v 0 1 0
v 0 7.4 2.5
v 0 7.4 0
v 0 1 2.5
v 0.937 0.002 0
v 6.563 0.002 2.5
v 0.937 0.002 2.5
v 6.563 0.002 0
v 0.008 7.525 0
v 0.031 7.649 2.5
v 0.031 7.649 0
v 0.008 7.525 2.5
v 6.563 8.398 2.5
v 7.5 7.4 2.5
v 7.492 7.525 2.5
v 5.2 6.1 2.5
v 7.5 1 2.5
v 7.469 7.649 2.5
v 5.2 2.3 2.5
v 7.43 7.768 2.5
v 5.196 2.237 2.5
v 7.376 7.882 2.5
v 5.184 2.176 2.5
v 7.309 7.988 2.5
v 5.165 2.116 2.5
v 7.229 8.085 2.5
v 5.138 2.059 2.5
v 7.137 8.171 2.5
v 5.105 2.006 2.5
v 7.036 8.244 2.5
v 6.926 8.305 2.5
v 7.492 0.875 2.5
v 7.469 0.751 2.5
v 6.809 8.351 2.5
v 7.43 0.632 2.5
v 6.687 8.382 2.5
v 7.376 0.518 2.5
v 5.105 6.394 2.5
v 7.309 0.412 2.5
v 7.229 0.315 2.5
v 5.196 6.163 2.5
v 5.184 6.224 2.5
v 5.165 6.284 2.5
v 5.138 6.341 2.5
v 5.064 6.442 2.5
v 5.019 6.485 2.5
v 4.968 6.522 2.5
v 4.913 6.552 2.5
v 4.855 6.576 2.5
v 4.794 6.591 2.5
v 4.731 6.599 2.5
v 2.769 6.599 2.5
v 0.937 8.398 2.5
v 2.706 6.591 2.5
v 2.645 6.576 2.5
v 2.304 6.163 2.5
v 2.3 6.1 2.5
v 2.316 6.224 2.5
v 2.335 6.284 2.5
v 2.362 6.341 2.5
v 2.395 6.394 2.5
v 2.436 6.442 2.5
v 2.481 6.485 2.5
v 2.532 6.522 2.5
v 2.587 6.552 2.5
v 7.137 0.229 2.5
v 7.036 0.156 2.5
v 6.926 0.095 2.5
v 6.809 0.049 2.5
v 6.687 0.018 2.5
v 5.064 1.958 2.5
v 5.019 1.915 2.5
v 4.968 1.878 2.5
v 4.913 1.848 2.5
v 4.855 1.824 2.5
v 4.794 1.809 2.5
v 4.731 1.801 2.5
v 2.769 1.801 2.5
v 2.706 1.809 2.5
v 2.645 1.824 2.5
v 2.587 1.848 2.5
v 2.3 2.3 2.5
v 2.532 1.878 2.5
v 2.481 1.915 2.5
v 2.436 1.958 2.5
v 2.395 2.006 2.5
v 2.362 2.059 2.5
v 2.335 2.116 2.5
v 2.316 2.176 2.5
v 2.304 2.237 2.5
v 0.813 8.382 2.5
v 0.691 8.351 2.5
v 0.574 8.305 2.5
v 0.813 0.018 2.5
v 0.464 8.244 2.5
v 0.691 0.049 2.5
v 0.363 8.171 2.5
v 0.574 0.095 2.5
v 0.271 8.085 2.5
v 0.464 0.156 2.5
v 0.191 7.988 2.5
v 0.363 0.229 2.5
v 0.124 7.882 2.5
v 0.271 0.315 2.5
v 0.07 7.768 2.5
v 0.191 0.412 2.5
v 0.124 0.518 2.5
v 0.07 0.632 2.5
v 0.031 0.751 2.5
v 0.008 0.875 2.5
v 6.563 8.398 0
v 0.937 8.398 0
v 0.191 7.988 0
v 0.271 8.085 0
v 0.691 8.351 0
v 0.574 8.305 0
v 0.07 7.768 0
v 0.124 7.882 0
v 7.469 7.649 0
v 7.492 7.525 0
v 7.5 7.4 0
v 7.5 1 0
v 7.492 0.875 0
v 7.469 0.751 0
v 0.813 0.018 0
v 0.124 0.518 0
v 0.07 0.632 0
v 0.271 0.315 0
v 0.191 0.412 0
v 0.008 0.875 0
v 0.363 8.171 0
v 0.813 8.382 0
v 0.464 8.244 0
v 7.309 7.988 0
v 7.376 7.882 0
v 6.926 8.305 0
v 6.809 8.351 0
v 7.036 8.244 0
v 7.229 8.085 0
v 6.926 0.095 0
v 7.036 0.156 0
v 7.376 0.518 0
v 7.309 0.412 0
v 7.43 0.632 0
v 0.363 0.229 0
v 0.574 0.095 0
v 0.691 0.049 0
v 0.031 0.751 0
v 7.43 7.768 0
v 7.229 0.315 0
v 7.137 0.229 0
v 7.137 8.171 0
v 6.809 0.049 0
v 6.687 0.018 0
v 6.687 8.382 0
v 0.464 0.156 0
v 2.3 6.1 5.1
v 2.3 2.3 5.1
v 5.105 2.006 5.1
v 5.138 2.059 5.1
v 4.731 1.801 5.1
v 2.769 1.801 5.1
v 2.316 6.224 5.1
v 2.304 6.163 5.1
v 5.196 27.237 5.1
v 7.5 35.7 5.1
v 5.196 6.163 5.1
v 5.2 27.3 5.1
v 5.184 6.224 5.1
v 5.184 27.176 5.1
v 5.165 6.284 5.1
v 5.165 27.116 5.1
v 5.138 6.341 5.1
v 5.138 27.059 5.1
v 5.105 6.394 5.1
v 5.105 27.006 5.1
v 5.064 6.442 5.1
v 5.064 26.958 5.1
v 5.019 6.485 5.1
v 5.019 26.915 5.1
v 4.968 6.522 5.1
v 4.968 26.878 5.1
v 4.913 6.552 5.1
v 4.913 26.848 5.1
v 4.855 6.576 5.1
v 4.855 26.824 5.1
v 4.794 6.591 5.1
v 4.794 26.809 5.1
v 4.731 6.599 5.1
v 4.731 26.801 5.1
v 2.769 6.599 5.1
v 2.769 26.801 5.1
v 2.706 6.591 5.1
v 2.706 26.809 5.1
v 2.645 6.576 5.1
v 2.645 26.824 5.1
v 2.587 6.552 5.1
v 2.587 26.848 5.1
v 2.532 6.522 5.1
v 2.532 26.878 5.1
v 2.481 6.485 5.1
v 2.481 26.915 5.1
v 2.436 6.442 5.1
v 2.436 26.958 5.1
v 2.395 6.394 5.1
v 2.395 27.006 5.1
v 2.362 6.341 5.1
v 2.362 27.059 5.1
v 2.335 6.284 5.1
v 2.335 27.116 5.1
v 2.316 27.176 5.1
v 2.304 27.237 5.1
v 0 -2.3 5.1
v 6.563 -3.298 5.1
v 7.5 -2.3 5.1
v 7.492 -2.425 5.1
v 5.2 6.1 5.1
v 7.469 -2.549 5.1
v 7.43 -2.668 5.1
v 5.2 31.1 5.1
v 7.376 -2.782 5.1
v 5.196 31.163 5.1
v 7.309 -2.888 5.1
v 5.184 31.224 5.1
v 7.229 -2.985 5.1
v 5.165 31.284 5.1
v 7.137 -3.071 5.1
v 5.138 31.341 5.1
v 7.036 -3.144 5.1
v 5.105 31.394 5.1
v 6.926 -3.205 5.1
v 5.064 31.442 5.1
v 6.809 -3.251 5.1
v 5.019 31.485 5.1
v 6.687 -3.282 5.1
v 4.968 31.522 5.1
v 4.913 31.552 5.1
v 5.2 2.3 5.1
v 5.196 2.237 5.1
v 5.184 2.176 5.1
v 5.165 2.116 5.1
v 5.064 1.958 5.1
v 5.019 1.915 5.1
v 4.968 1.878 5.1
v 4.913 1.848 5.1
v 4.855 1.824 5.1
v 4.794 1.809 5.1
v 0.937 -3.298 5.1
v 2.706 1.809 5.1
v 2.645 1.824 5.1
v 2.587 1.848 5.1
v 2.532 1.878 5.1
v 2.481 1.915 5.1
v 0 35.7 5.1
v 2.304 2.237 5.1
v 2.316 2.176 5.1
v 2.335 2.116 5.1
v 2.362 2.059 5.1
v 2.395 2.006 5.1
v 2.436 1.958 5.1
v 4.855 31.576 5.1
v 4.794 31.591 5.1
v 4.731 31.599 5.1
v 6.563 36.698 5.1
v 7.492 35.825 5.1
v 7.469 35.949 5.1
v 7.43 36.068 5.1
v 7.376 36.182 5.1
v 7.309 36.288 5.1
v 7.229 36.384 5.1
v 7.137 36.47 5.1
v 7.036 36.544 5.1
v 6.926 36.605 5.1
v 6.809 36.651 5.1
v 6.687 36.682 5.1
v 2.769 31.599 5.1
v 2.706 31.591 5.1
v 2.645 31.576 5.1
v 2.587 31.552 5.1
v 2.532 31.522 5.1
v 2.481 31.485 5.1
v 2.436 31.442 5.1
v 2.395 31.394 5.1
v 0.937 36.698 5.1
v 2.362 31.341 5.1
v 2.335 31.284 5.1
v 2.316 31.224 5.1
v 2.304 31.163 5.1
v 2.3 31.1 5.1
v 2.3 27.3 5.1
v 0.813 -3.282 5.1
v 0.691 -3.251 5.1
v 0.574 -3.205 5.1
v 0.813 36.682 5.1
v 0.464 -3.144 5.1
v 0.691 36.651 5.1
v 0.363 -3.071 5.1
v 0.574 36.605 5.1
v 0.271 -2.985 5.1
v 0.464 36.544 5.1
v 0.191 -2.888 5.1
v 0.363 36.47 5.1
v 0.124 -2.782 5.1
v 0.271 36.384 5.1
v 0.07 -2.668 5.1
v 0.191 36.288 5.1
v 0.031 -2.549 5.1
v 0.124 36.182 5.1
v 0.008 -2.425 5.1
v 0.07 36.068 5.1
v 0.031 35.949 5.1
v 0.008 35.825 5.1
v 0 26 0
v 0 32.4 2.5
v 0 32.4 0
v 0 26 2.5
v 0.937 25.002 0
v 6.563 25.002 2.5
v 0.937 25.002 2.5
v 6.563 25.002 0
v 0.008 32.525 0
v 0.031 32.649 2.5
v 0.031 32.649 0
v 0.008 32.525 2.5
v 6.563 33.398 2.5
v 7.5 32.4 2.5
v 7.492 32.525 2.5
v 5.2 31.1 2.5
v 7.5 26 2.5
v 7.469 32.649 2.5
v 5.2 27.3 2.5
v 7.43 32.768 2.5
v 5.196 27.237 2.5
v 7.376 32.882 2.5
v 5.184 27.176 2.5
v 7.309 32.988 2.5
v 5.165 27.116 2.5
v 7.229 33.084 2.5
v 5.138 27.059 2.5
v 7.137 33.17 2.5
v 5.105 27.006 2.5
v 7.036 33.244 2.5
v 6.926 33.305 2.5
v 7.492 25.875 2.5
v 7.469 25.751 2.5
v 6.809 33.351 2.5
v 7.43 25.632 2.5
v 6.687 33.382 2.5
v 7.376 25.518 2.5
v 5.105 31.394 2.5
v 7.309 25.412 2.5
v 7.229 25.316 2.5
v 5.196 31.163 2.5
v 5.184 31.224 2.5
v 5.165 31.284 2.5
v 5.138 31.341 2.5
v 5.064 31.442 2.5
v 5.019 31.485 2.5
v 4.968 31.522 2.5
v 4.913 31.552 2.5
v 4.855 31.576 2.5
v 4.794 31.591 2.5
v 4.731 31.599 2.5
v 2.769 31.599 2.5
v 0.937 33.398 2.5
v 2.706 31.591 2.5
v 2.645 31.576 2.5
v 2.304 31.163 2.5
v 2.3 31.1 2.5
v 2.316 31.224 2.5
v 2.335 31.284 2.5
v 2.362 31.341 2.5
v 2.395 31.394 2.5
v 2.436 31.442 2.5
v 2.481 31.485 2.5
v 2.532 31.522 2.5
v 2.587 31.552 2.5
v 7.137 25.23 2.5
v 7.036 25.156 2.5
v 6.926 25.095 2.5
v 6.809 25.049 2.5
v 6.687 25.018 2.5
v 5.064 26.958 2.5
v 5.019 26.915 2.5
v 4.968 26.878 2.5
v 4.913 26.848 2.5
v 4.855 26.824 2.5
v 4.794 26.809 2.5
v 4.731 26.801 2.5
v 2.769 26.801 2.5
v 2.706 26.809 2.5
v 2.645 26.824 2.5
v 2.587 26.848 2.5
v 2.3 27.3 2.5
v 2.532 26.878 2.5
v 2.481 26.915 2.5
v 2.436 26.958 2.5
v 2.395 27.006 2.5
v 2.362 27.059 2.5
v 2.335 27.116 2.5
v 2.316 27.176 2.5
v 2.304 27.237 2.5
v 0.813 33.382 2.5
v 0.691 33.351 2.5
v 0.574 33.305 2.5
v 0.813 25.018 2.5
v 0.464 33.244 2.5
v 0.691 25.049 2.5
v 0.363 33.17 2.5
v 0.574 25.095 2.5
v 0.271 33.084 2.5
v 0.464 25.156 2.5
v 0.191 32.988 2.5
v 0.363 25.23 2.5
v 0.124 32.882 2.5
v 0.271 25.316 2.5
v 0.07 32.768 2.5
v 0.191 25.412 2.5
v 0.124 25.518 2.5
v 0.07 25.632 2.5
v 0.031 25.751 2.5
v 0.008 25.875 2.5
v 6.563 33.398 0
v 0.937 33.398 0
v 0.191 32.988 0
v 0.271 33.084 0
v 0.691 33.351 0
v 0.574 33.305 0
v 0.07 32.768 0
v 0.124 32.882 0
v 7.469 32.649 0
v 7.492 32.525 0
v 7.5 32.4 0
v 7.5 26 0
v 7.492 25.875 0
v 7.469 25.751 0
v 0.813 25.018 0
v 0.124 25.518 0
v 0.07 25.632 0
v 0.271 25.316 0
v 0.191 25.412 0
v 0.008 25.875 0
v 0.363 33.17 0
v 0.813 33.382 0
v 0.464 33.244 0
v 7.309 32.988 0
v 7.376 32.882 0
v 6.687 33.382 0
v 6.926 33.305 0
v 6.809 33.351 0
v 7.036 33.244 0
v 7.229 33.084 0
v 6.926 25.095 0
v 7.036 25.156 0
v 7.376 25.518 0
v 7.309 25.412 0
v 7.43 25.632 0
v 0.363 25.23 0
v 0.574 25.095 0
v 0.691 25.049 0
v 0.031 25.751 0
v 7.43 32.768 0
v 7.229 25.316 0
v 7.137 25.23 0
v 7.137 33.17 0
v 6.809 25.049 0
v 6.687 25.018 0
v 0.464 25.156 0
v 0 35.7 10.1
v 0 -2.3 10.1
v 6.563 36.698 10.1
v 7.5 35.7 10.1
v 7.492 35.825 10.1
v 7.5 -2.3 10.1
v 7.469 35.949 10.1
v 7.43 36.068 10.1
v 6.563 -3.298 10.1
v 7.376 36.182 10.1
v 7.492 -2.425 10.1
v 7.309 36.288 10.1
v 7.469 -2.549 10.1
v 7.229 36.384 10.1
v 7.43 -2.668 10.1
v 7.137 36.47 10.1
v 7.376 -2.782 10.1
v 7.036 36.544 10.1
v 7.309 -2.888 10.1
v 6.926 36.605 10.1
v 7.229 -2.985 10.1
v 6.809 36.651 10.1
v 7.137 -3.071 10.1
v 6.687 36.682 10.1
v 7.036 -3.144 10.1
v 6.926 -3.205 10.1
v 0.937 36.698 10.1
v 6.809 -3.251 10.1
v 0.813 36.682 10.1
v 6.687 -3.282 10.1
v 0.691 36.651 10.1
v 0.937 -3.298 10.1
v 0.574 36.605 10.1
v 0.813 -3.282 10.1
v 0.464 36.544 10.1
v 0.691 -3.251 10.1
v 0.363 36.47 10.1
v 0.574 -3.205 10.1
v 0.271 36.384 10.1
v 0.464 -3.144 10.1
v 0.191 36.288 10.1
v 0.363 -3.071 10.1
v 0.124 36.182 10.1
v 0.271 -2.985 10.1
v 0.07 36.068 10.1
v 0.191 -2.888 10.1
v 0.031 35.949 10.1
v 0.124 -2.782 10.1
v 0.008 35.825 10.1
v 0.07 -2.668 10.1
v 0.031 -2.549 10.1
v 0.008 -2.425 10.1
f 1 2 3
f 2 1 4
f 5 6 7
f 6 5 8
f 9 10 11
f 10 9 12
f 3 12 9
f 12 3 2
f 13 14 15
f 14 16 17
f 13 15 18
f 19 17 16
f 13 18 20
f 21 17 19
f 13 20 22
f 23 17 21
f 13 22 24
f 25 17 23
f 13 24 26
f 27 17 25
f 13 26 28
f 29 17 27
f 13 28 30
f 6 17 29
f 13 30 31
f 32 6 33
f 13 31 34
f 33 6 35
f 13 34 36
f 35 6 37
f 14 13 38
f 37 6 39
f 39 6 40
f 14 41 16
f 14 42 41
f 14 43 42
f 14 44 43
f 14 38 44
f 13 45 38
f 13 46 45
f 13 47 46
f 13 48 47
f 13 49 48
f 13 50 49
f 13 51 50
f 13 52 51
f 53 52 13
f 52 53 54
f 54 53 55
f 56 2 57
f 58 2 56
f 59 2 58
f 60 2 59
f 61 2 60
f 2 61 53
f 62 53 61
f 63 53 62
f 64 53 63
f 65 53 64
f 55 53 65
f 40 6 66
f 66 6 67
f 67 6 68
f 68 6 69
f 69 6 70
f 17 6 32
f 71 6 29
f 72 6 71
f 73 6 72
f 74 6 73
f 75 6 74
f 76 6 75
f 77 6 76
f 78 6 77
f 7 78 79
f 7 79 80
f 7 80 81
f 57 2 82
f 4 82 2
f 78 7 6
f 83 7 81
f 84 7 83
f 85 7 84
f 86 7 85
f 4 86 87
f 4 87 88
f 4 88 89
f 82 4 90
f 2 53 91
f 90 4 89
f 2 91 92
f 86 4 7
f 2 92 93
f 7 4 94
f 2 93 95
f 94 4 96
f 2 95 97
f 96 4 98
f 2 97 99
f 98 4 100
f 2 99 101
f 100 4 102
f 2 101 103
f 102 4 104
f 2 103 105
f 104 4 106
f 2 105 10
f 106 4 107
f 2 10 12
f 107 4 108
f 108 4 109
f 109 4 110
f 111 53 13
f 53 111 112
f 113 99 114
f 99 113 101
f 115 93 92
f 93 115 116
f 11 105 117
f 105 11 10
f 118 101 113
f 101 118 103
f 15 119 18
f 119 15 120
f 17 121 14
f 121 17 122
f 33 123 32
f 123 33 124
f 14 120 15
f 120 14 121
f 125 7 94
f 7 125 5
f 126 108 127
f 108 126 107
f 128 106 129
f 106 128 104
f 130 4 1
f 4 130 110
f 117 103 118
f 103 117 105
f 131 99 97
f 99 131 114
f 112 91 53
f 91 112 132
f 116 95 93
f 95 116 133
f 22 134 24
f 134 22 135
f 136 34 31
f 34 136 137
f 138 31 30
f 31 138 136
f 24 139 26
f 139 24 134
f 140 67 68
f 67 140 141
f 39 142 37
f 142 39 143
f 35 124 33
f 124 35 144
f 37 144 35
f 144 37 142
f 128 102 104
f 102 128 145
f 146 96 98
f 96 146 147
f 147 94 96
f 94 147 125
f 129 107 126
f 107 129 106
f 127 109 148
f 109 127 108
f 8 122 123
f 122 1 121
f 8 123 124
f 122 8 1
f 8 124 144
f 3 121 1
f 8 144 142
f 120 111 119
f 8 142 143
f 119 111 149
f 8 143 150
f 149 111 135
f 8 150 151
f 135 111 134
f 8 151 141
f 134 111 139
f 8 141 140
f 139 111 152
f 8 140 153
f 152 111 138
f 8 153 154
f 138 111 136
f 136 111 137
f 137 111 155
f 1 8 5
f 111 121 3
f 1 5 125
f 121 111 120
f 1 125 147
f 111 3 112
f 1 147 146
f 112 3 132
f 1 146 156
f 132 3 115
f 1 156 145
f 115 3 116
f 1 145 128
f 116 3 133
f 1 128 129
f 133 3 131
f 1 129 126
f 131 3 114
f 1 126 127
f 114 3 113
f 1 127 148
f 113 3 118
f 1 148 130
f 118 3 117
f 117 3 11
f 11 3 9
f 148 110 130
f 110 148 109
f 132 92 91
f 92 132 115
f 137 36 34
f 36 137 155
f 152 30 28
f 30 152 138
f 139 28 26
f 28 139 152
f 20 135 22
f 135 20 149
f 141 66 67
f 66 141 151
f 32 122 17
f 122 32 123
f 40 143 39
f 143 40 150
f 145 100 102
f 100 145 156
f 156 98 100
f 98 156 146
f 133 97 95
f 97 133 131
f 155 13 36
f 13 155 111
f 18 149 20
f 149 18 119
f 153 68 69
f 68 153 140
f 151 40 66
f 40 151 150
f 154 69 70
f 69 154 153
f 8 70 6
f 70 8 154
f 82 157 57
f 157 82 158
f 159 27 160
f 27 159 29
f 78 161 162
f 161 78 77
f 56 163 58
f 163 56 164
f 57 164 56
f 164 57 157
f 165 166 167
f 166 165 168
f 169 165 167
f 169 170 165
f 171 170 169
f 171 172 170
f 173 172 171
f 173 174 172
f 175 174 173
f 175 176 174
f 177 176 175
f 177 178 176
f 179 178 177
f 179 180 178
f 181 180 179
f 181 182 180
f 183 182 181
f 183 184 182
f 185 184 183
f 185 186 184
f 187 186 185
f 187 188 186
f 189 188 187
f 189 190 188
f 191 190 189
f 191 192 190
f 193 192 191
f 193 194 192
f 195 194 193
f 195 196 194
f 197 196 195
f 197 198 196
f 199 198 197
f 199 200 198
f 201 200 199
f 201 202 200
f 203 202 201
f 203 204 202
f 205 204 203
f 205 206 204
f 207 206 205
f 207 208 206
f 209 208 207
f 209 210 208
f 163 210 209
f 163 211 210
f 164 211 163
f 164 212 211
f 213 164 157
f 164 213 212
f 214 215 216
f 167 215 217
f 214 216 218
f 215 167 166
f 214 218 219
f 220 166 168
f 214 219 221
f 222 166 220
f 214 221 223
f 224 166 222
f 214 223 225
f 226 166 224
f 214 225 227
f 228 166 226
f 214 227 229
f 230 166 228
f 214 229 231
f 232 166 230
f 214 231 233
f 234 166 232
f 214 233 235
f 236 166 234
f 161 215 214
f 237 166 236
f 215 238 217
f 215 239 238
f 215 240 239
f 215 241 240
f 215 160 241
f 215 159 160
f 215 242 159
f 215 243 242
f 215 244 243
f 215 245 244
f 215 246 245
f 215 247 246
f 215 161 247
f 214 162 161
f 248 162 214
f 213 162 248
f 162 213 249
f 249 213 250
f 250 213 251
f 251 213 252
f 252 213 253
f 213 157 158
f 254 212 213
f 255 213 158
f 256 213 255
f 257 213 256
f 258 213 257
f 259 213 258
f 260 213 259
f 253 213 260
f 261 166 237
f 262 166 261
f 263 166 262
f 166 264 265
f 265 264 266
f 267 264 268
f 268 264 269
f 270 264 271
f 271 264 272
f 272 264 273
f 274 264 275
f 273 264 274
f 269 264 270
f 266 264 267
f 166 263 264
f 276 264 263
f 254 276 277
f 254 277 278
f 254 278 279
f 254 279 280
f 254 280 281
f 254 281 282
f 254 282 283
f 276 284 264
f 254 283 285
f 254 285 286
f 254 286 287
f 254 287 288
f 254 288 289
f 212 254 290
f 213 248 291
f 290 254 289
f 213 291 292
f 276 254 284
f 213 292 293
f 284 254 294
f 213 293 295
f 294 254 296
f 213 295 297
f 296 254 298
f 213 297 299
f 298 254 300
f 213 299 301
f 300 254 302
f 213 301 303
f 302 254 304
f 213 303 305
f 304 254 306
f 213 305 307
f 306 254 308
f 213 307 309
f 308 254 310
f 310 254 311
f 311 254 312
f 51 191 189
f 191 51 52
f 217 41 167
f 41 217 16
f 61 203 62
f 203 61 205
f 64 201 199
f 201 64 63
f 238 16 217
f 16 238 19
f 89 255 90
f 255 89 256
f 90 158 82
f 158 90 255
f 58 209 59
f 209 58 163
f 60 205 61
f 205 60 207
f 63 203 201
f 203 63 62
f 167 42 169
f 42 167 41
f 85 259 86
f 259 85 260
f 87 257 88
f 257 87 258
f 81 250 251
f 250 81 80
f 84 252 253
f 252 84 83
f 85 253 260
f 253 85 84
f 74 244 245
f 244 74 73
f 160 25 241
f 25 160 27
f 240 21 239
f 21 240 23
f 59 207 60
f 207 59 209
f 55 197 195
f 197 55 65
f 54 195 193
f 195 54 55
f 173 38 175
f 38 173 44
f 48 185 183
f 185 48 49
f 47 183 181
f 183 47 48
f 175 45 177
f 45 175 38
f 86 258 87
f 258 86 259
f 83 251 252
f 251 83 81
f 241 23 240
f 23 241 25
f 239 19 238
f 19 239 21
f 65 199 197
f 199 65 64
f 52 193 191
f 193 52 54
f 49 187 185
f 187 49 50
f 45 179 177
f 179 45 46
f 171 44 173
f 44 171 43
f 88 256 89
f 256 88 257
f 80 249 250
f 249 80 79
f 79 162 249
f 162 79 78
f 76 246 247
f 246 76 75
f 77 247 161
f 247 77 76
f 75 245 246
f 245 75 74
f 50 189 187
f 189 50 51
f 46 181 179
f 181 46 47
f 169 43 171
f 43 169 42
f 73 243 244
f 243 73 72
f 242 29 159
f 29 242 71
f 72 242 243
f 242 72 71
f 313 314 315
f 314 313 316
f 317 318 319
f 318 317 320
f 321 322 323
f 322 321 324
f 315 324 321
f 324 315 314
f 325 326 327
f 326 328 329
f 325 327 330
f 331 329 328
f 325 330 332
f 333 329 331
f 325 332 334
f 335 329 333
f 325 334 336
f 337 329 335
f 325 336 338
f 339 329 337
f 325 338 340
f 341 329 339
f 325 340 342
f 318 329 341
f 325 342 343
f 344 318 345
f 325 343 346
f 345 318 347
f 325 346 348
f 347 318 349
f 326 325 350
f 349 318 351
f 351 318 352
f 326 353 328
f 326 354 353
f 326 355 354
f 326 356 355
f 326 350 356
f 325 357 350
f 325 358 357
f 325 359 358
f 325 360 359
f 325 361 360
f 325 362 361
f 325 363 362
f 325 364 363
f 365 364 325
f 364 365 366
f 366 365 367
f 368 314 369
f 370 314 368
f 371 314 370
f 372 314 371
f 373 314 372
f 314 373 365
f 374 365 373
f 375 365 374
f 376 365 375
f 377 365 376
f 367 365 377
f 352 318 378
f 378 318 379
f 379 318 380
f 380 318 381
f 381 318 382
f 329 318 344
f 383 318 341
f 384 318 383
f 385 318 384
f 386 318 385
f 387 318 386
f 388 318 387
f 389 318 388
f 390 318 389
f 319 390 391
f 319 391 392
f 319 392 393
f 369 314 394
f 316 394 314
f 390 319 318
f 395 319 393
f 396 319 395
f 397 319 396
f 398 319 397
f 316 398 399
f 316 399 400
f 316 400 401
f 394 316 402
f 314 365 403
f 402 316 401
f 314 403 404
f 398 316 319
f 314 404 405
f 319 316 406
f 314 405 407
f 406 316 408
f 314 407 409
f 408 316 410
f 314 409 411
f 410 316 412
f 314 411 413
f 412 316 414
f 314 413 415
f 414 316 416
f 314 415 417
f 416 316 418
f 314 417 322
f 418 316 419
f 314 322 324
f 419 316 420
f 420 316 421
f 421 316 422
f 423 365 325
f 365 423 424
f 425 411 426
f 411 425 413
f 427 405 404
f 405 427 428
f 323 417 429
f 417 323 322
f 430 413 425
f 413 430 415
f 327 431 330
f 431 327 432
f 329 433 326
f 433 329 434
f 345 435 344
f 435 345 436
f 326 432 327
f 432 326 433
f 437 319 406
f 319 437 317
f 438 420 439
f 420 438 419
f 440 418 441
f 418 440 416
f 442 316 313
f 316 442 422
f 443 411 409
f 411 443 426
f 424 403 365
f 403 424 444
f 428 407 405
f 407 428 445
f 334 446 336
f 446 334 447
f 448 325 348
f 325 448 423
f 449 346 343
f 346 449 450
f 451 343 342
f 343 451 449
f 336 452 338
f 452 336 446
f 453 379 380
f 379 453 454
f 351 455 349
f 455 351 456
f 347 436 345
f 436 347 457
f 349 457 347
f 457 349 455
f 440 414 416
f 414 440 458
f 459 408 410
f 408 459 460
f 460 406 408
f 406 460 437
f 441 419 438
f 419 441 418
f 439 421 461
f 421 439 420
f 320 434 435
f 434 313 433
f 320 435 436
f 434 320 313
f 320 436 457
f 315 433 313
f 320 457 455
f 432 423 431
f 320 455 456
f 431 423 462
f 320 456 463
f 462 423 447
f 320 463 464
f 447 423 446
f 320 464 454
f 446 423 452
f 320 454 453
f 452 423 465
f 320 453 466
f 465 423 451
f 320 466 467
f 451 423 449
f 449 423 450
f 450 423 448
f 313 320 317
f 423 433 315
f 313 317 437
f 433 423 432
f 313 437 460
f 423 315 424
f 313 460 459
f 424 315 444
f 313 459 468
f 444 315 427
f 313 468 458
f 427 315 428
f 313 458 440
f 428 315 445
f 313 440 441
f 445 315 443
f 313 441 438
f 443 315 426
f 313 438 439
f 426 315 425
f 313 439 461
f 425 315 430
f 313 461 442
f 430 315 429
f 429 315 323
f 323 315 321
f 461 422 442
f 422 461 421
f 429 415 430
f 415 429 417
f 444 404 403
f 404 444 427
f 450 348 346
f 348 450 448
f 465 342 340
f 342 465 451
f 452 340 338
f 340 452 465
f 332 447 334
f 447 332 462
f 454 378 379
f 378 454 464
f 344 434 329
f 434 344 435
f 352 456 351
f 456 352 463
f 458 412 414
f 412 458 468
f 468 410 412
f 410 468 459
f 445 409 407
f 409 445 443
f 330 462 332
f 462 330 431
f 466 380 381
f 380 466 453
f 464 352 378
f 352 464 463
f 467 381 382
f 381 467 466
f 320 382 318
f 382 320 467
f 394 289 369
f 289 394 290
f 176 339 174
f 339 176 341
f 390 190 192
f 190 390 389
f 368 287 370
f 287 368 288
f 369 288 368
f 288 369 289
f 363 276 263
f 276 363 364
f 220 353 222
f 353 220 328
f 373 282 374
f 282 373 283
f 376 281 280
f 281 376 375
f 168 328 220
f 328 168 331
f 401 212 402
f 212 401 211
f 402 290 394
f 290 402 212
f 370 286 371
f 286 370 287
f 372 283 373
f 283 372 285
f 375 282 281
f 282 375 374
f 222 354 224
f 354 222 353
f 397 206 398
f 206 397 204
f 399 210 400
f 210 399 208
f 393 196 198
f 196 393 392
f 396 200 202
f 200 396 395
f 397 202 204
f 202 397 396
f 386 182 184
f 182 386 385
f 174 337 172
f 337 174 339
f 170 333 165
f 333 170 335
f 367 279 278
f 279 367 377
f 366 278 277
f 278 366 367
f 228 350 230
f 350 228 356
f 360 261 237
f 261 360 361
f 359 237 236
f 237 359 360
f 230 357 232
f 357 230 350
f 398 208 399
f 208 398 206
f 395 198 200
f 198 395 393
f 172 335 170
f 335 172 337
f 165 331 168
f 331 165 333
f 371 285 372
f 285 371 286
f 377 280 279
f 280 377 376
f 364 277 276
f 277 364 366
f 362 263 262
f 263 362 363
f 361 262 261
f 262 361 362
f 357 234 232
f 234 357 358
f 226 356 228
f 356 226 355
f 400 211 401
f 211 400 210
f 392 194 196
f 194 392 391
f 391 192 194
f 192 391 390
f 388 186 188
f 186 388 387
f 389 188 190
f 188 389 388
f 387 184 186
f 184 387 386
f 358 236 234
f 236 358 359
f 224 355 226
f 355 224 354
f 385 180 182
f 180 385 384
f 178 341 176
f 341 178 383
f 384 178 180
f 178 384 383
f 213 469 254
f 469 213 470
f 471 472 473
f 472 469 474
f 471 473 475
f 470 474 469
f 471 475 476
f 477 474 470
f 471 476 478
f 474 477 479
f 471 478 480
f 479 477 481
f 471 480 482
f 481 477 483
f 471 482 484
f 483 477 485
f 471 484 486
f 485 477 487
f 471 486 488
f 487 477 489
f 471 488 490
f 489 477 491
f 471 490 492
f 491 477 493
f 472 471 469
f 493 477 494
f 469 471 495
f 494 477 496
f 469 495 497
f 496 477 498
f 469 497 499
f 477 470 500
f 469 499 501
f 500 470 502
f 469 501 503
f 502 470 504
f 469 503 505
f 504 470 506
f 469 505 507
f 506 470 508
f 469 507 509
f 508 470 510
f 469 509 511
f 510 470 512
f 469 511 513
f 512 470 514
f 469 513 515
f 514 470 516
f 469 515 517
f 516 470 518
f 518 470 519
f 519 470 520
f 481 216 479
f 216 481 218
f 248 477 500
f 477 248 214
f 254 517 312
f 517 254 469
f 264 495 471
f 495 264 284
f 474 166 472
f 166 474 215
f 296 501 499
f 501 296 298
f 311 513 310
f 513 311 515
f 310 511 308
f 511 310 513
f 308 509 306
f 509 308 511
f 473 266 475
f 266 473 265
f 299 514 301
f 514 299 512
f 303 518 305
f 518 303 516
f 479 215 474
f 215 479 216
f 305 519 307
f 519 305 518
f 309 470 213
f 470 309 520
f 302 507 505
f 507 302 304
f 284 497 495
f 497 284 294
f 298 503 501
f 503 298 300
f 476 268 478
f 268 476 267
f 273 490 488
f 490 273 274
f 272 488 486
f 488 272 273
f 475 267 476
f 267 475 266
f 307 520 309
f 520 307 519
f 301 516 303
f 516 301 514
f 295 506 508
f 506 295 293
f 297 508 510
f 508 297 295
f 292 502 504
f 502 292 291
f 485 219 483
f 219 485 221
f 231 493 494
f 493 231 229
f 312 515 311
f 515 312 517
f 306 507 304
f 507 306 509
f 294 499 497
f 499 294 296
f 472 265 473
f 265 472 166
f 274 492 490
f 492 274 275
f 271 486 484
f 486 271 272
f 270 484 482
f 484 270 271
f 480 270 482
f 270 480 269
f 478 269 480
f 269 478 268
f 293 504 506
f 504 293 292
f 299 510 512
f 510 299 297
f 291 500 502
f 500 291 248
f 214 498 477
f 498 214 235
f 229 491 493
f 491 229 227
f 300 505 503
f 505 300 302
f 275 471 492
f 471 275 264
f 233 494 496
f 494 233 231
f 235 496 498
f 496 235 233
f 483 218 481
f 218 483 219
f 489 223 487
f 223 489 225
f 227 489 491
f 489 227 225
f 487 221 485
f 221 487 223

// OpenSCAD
// file: ../lib/helpers.objects.scad
/* Helpers for providing object-line functionality.
*/

use <helpers.lists.scad>;

function __getset(obj, index, value) =
  is_undef(value)
    ? obj[index]
    : replace(obj, index, value);
// file: ../lib/helpers.lists.scad
// Creates a list of integers.

function range(r) = [for (x = r) x];

// Reverses a list.
    
function reverse(list) = [for (i = [len(list)-1:-1:0]) list[i]];
  
// Concatenates two lists. If either of them is `undef`, it is ignored.

function concat_undef(list1, list2) =
    concat(is_undef(list1) ? [] : list1, is_undef(list2) ? [] : list2);

// Quicksort
// http://forum.openscad.org/OpenJSCAD-our-javascript-friends-td7835.html

function quicksort(list) = !(len(list)>0) ? [] : let( 
    pivot   = list[floor(len(list)/2)], 
    lesser  = [ for (y = list) if (y  < pivot) y ], 
    equal   = [ for (y = list) if (y == pivot) y ], 
    greater = [ for (y = list) if (y  > pivot) y ] 
) concat( 
    quicksort(lesser), equal, quicksort(greater) 
); 

// Returns sum of squares of list elements

function sum_squares(list) = list*list;
// file: ../lib/geometry.scad
/* Functions that implement calculations on points (2D/3D) and lists of points.
*/

use <helpers.lists.scad>
use <helpers.math.scad>
use <helpers.objects.scad>

// Calculates distance between two points.

function distance(pt1, pt2) =
  length(pt2 - pt1);
  
// Linear interpolation between two points.
// t = number => result = point between pt1 and pt2
// t = range => result = list of points between pt1 and pt2

function interpolate(t, pt1, pt2) = 
  is_num(t) 
    ? (1 - t) * pt1 + t * pt2
    : [for (x=t) interpolate(x, pt1, pt2)];
  
// Angle (0-180) between two (2D or 3D) vectors.

function angle(u, v) =
  let (u3 = make_3D(u),
       v3 = make_3D(v))
  angle3(u3, v3); 
  
// Angle (0-360) of a 2D vector.

function angle2(v1) = 
  let(side = dist_from_line(line_coef([0, 0], [1, 0]), v1),
      a = angle3(concat(v1, [0])))
  side <= 0 ? a : 360 - a; 

// Sets Z coordinate to 0 if it is not defined.

function make_3D(points) = 
  ! is_vector(points)
    ? [for (pt = points) make_3D(pt)]
    : is_undef(points.z) ? concat(points, 0) : points;
  
// echo(make_3D([1,1]));
// echo(make_3D([[1,1], [2,2,2]]));
    
// Removes Z coordinate.

function make_2D(points) = 
  ! is_vector(points)
    ? [for (pt = points) make_2D(pt)]
    : slice(points, [0:1]);
  
// Point on the unit circle on XY plane corresponding to `angle` (in degrees).
  
function point_on_unit_circle(angle) = [cos(angle), sin(angle)];

// Calculates center point for circle with radius `r` running through points `pt1` and `pt2`.
// The `side` parameter (1 or -1) determines on which side of the (pt1, pt2) line the center should lie.

function circle_center(pt1, pt2, r, side = 1) =
  let (mp = interpolate(0.5, pt1, pt2),
       mv = side == 1 ? turn_left(pt2 - mp) : turn_right(pt2 - mp),
       cp = mp + [mv.x, mv.y],
       td = sqrt(pow(r, 2) - pow(distance(pt2, pt1)/2, 2)))
  interpolate(td/distance(cp, mp), mp, cp);

// Finds closest point on a segment.

function find_closest_point(from, to, pt) = 
  let(v = make_3D(to) - make_3D(from),
      u = make_3D(from) - make_3D(pt),
      vu = v*u,
      vv = v*v,
      t = -vu/vv)
  t >= 0 && t <= 1 
    ? interpolate(t, from, to)
    : let (dF = distance(pt, from),
           dT = distance(pt, to))
      dF < dT ? from : to;

// Bounding box.

function bb_create(p1, p2, p3, p4) = 
  // parameters: left, top, right, bottom
  //         or: [left bottom x, left bottom y], [right top x, right top y], undef, undef
  //         or: bb object, undef, undef, undef
  is_undef(p2)
    ? p1
    : is_undef(p3) && is_undef(p4)
        ? [p1.x, p2.y, p2.x, p1.y]
        : [p1, p2, p3, p4];

function bb_left(bb, __left) = __getset(bb, 0, __left);
function bb_top(bb, __top) = __getset(bb, 1, __top);
function bb_right(bb, __right) = __getset(bb, 2, __right);
function bb_bottom(bb, __bottom) = __getset(bb, 3, __bottom);

function bb_width(bb) = bb_right(bb) - bb_left(bb);

function bb_height(bb) = bb_top(bb) - bb_bottom(bb);

function bb_move_to(bb, left, top, right, bottom) =
  let(dx = is_undef(left) 
             ? is_undef(right)
                 ? undef
                 : right - bb_right(bb)
             : left - bb_left(bb),
      dy = is_undef(bottom)
             ? is_undef(top)
                 ? undef
                 : top - bb_top(bb)
             : bottom - bb_bottom(bb))
  bb_create(is_undef(dx) ? bb_left(bb) : bb_left(bb) + dx, 
            is_undef(dy) ? bb_top(bb) : bb_top(bb) + dy, 
            is_undef(dx) ? bb_right(bb) : bb_right(bb) + dx,
            is_undef(dy) ? bb_bottom(bb) : bb_bottom(bb) + dy);

function dot2(v1, v2) = 
  let (d = sqrt((pow(v1.x, 2) + pow(v1.y, 2))*(pow(v2.x, 2) + pow(v2.y, 22))))
  d == 0 
    ? 0
    : acos((v1.x * v2.x + v1.y * v2.y)/d);

function cross2(v1, v2) = 
  v1.x * v2.y - v2.x * v1.y;

// Returns a, b, c in ax + by + c = 0 for line going through (p1, p2). Assumes 2D points.
// Graphics Gems III/IV.5

function line_coef(p1, p2) = [
  p2.y - p1.y,
  p1.x - p2.x,
  p2.x * p1.y - p1.x * p2.y
];

// Returns signed distance from line l = ax + by + c = 0 to point p. Assumes 2D geometry.
// Graphics Gems III/IV.5

function dist_from_line(l, p) =
  let(d = hypoth(l[0], l[1]))
  d == 0
    ? 0
    : (l[0] * p.x + l[1] * p.y + l[2])/d;
    
// Given line l = ax + by + c = 0 and point p1, compute p2 so (p1, p2) is ⊥ to l.
// Graphics Gems III/IV.5

function point_perp(l, p1) = 
  let(d = pow(l[0], 2) + pow(l[1], 2),
      cp = l[0] * p1.y - l[1] * p1.x)
  d == 0
    ? [0, 0]
    : [(-l[0] * l[2] - l[1] * cp)/d,
       (l[0] * cp - l[1] * l[2])/d];

// Joins lines (p1, p2) and (p3, p4) with arc fillet of radius r.
// Returns [p2n, p3n, pc, sa, a] where
//  - p2n = new point p2
//  - p3n = new point p3
//  - pc = center of the arc
//  - sa = starting angle of the arc
//  - a = angle of the arc
// Graphics Gems III/IV.5

function fillet_lines (p1, p2, p3, p4, r) = 
  let(l1 = line_coef(p1, p2),
      l2 = line_coef(p3, p4))
  (l1[0] * l2[1]) == (l2[0] * l1[1])
    ? // Parallel lines
      [p2, p3, [undef, undef], undef, undef]
    : let (d1 = dist_from_line(l1, interpolate(0.5, p3, p4)), // Find d1 = distance (p1, p2) to midpoint (p3, p4).
           d2 = dist_from_line(l2, interpolate(0.5, p1, p2))) // Find d2 = instance (p3, p4) to midpoint (p1, p2).
      ((d1 == 0) || (d2 == 0))
        ? // Abnormal case
          [p2, p3, [undef, undef], undef, undef]
        : let(rr1 = d1 <= 0 ? -r : r, // Construct line ∏ to l at d.
              c1p = l1[2] - rr1 * hypoth(l1[0], l1[1]),  
              rr2 = d2 <= 0 ? -r : r,
              c2p = l2[2] - rr2 * hypoth(l2[0], l2[1]),
              d = l1[0] * l2[1] - l2[0] * l1[1], // Intersect constructed lines to find center of circular arc.
              pc = [(c2p * l1[1] - c1p * l2[1])/d,
                    (c1p * l2[0] - c2p * l1[0])/d],
              pta = point_perp(l1, pc), // Clip l1 at (xa, ya) if needed.
              ptb = point_perp(l2, pc), // Clip l2 at (xb, yb) if needed.
              v1 = pta - pc, // Find angle wrt. x-axis from arc center, (xc, yc).
              v2 = ptb - pc,
              pa = atan2(v1.y, v1.x),
              aa = cross2(v1, v2) >= 0 // Find angle arc subtends.
                     ? dot2(v1, v2)
                     : - dot2(v1, v2))
          [pta, ptb, pc, pa, aa];

// Calculates control points for bezier surface defined by two lines, l1 and l2.
// l1 = [pt1_start, pt1_end], l2 = [pt2_start, pt2_end]

function bezier_patch_controls(l1, l2) =
  let (x0 = interpolate([0:1/3:1], l1[0], l1[1]),
       x3 = interpolate([0:1/3:1], l2[0], l2[1]))
  [ for (i=[0:3]) interpolate([0:1/3:1], x0[i], x3[i]) ];
// file: ../lib/helpers.math.scad
// Constants

e = 2.71828;
tau = (1 + sqrt(5)) / 2;
inf = 0.01;

// is_defined

function is_defined(value) = !is_undef(value);

// Logistic function and its derivative.

function logistic_function(x) = 
  let (ex = exp(x))
  ex / (ex + 1);

function logistic_function_dx(x) = 
  let (ex = exp(x))
  ex / ((ex + 1)*(ex + 1));
  
// Calculates length of a vector.

function length(v) = norm(v);

// Normalizes a vector.

function normalize(v) = v / length(v);

// Calculates hypothenuse of right triangle from its sides.

function hypoth(a, b) = sqrt(pow(a, 2) + pow(b, 2));

// Angle between two vectors.

function angle3(u, v = [1,0,0]) = 
  atan2(norm(cross(u, v)), u * v);

// Given a 2D directional vector, turns 90 deg CW and returns new vector.

function turn_right(xy) = [xy.y, -xy.x];

// Given a 2D directional vector, turns 90 deg CCW and returns new vector.

function turn_left(xy) = [-xy.y, xy.x];

// Returns original value (if not undef) or provided default (if the value is undef).

function initialize(value, default) =
  is_undef(value) ? default : value;
// main file
use <../lib/solids.scad>

rect_big = [7.5, 8.4, 2.5];
rect_small = [2.9, 4.8, 2.6];
connect = [7.5, 40, 5];
dist_rect = 25;

$fn = 50;

module lock () {
  color("red")
  rcube(rect_big, 1);

  color("green")
  translate([(rect_big.x - rect_small.x)/2, (rect_big.y - rect_small.y)/2, rect_big.z])
  rcube(rect_small, 0.5);
}

lock();

translate([0, dist_rect, 0])
lock();

translate([- (connect.x - rect_big.x)/2, (connect.y - (dist_rect + rect_small.y))/2 - rect_big.y, rect_big.z + rect_small.z])
rcube(connect, 1);
